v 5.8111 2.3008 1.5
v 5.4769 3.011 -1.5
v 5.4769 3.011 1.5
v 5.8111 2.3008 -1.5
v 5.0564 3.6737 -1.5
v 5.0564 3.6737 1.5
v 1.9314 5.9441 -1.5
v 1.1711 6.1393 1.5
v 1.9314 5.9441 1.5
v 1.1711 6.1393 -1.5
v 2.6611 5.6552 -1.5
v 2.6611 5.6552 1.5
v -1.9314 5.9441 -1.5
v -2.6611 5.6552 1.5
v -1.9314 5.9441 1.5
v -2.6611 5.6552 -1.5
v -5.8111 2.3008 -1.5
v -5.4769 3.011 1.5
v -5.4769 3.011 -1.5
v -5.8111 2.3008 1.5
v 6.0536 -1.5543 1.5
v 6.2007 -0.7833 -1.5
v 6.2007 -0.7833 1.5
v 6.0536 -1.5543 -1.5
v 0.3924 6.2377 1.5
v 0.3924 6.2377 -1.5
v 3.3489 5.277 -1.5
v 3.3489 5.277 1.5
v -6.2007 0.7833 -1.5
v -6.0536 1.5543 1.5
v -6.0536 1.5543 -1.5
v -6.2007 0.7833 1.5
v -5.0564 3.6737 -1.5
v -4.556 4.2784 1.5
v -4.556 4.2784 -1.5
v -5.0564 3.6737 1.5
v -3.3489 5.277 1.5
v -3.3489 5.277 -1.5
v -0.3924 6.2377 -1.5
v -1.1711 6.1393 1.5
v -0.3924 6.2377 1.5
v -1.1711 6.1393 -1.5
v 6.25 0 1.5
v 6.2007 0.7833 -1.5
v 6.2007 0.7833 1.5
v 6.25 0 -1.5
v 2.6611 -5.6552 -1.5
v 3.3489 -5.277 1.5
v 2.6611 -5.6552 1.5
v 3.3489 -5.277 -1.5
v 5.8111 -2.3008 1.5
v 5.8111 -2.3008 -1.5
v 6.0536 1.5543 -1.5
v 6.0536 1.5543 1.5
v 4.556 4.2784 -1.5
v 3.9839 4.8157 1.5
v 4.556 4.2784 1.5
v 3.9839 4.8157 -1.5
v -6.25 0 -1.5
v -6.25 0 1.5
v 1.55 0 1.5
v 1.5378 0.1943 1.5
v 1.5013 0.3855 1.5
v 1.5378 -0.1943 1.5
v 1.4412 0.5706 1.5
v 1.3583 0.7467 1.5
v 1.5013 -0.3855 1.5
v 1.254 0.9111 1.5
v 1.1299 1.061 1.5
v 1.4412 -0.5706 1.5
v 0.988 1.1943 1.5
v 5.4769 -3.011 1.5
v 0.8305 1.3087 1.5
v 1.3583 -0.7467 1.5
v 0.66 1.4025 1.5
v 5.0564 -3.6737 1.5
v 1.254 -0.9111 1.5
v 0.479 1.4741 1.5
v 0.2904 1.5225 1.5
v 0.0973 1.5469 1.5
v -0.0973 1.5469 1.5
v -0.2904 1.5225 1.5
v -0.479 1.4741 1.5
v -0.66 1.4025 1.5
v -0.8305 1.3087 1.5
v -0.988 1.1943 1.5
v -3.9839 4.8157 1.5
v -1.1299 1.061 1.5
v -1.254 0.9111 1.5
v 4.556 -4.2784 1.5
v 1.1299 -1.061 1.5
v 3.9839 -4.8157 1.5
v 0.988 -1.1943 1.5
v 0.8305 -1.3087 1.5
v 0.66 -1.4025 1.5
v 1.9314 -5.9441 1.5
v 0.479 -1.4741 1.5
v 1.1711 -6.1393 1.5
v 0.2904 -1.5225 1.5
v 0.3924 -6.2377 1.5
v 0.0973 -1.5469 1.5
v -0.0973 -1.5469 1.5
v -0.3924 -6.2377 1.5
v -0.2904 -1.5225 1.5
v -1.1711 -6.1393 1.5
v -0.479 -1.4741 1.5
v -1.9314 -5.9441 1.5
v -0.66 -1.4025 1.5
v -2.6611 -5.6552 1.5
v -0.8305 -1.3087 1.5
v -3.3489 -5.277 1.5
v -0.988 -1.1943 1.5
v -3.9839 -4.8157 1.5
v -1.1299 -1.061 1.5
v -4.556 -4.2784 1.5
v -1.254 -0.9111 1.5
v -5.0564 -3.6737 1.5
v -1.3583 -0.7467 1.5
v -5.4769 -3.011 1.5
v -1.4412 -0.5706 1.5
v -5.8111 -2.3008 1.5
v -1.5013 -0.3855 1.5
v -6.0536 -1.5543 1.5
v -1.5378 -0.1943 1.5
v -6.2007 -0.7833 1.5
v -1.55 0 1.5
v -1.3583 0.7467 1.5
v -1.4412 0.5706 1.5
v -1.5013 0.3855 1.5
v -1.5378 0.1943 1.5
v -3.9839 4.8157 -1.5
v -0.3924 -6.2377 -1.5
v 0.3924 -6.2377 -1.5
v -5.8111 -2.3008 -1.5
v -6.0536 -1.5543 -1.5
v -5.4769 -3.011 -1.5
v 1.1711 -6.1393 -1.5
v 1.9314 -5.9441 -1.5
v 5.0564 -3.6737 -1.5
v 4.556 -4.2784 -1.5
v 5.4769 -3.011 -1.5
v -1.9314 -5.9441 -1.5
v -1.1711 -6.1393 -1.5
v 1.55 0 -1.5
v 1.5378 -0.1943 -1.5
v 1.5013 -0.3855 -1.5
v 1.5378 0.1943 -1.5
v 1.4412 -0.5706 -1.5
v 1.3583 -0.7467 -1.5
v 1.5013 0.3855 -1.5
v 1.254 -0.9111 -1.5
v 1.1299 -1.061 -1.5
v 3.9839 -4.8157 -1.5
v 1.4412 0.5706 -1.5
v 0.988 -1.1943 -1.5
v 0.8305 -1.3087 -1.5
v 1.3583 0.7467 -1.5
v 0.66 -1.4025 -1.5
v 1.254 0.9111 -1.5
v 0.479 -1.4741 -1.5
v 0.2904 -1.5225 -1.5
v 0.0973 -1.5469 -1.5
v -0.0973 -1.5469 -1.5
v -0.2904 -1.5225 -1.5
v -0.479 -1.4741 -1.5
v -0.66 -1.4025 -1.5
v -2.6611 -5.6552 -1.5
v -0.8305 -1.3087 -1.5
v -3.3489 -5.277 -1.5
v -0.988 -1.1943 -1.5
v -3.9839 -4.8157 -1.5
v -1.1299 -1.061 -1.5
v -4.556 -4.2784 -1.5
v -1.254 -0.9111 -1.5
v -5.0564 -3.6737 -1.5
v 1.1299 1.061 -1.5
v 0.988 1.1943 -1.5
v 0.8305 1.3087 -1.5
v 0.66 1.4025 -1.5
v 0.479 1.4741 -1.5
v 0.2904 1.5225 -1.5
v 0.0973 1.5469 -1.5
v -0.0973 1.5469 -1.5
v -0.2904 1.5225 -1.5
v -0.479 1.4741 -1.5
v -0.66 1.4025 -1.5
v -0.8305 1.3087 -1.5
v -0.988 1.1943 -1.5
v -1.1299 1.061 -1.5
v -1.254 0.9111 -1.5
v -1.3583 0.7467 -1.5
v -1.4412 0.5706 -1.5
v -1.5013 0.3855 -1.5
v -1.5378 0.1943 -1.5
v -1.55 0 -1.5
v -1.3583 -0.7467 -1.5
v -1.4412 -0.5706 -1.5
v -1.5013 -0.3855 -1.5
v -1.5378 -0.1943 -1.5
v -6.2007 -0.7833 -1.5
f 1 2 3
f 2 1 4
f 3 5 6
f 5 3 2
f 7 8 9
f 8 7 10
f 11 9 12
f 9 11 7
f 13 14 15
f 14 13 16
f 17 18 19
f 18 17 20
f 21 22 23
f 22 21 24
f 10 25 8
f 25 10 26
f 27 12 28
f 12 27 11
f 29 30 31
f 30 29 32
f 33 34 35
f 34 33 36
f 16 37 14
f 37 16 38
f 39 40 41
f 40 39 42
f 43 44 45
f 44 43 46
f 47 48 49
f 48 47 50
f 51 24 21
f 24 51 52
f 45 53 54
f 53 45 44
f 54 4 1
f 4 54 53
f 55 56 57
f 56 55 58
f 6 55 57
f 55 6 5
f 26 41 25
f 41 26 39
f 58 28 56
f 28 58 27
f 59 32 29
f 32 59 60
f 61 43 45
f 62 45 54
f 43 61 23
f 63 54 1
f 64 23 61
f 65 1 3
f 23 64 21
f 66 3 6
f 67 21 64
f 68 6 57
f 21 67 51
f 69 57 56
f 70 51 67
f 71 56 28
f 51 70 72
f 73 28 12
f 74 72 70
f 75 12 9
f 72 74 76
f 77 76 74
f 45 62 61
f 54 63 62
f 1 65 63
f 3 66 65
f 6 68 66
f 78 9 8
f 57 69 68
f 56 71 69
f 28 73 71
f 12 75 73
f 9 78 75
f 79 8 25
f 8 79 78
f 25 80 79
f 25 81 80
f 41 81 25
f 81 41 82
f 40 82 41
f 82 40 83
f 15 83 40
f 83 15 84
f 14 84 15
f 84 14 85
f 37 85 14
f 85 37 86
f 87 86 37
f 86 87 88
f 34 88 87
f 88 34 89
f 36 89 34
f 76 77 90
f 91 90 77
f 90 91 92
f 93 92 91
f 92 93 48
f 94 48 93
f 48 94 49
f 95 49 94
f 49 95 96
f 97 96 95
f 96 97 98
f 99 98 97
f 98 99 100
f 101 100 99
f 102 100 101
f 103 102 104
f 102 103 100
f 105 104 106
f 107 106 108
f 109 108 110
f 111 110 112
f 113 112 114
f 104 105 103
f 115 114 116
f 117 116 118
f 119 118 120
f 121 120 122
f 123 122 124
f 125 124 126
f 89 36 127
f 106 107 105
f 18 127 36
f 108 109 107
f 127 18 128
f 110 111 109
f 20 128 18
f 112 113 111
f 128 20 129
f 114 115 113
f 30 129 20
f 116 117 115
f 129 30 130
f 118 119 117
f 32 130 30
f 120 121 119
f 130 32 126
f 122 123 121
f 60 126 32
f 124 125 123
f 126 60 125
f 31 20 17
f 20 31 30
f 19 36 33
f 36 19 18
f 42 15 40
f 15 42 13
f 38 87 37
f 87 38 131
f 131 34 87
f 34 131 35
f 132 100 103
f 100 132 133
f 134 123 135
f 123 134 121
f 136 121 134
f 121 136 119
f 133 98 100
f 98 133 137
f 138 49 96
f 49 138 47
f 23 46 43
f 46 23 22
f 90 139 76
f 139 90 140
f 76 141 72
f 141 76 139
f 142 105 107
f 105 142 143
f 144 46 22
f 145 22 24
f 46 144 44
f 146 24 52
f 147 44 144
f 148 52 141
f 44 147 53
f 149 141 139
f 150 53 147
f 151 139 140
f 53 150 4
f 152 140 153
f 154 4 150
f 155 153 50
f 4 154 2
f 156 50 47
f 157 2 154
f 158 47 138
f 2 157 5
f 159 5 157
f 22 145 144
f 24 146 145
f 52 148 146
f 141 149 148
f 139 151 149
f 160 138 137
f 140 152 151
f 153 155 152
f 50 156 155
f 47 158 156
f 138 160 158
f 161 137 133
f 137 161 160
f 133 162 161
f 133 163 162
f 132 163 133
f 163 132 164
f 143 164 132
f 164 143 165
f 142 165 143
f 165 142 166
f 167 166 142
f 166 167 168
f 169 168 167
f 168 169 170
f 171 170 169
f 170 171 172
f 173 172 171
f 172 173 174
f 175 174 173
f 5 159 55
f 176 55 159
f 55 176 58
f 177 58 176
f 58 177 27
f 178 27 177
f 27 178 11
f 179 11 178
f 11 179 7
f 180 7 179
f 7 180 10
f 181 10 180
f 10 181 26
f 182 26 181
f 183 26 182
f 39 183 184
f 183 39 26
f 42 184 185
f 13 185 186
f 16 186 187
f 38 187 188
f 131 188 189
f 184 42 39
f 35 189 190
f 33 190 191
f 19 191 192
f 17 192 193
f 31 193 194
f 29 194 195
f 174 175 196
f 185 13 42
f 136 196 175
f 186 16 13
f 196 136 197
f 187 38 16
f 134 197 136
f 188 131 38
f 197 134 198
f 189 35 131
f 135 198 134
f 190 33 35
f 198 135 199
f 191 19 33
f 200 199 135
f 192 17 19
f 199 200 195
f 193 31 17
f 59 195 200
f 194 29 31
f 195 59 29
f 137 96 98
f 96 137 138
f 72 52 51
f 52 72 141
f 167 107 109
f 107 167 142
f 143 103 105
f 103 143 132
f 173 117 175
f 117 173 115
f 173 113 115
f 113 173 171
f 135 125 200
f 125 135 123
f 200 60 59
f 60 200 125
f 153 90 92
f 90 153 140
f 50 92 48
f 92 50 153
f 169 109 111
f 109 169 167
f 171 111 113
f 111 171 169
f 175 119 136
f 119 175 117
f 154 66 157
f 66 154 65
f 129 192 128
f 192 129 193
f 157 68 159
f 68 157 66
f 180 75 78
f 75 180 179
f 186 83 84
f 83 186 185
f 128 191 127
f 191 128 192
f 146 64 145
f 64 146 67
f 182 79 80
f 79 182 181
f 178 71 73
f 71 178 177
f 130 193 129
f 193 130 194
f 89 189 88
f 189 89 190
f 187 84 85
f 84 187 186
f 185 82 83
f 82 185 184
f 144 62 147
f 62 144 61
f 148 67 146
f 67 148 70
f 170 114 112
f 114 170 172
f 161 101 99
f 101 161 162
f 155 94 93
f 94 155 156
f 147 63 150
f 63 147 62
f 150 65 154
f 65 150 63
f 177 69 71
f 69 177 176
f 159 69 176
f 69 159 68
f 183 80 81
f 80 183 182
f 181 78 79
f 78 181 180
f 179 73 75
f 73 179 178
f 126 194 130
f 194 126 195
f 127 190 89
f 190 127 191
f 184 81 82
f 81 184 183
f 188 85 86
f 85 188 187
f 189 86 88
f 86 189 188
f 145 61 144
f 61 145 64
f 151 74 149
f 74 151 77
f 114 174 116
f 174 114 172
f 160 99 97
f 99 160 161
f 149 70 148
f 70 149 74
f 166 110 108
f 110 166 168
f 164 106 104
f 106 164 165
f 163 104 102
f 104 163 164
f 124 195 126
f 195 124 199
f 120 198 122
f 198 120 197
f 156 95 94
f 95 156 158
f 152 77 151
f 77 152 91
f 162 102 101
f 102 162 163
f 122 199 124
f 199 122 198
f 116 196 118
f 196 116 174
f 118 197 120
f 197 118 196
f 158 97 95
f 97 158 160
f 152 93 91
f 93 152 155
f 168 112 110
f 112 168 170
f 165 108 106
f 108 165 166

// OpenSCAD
$fn = 50;


difference() {
	union() {
		translate(v = [0, 0, -1.5000000000]) {
			cylinder(h = 3, r = 6.2500000000);
		}
	}
	union() {
		translate(v = [0, 0, -100.0000000000]) {
			cylinder(h = 200, r = 1.5500000000);
		}
	}
}
